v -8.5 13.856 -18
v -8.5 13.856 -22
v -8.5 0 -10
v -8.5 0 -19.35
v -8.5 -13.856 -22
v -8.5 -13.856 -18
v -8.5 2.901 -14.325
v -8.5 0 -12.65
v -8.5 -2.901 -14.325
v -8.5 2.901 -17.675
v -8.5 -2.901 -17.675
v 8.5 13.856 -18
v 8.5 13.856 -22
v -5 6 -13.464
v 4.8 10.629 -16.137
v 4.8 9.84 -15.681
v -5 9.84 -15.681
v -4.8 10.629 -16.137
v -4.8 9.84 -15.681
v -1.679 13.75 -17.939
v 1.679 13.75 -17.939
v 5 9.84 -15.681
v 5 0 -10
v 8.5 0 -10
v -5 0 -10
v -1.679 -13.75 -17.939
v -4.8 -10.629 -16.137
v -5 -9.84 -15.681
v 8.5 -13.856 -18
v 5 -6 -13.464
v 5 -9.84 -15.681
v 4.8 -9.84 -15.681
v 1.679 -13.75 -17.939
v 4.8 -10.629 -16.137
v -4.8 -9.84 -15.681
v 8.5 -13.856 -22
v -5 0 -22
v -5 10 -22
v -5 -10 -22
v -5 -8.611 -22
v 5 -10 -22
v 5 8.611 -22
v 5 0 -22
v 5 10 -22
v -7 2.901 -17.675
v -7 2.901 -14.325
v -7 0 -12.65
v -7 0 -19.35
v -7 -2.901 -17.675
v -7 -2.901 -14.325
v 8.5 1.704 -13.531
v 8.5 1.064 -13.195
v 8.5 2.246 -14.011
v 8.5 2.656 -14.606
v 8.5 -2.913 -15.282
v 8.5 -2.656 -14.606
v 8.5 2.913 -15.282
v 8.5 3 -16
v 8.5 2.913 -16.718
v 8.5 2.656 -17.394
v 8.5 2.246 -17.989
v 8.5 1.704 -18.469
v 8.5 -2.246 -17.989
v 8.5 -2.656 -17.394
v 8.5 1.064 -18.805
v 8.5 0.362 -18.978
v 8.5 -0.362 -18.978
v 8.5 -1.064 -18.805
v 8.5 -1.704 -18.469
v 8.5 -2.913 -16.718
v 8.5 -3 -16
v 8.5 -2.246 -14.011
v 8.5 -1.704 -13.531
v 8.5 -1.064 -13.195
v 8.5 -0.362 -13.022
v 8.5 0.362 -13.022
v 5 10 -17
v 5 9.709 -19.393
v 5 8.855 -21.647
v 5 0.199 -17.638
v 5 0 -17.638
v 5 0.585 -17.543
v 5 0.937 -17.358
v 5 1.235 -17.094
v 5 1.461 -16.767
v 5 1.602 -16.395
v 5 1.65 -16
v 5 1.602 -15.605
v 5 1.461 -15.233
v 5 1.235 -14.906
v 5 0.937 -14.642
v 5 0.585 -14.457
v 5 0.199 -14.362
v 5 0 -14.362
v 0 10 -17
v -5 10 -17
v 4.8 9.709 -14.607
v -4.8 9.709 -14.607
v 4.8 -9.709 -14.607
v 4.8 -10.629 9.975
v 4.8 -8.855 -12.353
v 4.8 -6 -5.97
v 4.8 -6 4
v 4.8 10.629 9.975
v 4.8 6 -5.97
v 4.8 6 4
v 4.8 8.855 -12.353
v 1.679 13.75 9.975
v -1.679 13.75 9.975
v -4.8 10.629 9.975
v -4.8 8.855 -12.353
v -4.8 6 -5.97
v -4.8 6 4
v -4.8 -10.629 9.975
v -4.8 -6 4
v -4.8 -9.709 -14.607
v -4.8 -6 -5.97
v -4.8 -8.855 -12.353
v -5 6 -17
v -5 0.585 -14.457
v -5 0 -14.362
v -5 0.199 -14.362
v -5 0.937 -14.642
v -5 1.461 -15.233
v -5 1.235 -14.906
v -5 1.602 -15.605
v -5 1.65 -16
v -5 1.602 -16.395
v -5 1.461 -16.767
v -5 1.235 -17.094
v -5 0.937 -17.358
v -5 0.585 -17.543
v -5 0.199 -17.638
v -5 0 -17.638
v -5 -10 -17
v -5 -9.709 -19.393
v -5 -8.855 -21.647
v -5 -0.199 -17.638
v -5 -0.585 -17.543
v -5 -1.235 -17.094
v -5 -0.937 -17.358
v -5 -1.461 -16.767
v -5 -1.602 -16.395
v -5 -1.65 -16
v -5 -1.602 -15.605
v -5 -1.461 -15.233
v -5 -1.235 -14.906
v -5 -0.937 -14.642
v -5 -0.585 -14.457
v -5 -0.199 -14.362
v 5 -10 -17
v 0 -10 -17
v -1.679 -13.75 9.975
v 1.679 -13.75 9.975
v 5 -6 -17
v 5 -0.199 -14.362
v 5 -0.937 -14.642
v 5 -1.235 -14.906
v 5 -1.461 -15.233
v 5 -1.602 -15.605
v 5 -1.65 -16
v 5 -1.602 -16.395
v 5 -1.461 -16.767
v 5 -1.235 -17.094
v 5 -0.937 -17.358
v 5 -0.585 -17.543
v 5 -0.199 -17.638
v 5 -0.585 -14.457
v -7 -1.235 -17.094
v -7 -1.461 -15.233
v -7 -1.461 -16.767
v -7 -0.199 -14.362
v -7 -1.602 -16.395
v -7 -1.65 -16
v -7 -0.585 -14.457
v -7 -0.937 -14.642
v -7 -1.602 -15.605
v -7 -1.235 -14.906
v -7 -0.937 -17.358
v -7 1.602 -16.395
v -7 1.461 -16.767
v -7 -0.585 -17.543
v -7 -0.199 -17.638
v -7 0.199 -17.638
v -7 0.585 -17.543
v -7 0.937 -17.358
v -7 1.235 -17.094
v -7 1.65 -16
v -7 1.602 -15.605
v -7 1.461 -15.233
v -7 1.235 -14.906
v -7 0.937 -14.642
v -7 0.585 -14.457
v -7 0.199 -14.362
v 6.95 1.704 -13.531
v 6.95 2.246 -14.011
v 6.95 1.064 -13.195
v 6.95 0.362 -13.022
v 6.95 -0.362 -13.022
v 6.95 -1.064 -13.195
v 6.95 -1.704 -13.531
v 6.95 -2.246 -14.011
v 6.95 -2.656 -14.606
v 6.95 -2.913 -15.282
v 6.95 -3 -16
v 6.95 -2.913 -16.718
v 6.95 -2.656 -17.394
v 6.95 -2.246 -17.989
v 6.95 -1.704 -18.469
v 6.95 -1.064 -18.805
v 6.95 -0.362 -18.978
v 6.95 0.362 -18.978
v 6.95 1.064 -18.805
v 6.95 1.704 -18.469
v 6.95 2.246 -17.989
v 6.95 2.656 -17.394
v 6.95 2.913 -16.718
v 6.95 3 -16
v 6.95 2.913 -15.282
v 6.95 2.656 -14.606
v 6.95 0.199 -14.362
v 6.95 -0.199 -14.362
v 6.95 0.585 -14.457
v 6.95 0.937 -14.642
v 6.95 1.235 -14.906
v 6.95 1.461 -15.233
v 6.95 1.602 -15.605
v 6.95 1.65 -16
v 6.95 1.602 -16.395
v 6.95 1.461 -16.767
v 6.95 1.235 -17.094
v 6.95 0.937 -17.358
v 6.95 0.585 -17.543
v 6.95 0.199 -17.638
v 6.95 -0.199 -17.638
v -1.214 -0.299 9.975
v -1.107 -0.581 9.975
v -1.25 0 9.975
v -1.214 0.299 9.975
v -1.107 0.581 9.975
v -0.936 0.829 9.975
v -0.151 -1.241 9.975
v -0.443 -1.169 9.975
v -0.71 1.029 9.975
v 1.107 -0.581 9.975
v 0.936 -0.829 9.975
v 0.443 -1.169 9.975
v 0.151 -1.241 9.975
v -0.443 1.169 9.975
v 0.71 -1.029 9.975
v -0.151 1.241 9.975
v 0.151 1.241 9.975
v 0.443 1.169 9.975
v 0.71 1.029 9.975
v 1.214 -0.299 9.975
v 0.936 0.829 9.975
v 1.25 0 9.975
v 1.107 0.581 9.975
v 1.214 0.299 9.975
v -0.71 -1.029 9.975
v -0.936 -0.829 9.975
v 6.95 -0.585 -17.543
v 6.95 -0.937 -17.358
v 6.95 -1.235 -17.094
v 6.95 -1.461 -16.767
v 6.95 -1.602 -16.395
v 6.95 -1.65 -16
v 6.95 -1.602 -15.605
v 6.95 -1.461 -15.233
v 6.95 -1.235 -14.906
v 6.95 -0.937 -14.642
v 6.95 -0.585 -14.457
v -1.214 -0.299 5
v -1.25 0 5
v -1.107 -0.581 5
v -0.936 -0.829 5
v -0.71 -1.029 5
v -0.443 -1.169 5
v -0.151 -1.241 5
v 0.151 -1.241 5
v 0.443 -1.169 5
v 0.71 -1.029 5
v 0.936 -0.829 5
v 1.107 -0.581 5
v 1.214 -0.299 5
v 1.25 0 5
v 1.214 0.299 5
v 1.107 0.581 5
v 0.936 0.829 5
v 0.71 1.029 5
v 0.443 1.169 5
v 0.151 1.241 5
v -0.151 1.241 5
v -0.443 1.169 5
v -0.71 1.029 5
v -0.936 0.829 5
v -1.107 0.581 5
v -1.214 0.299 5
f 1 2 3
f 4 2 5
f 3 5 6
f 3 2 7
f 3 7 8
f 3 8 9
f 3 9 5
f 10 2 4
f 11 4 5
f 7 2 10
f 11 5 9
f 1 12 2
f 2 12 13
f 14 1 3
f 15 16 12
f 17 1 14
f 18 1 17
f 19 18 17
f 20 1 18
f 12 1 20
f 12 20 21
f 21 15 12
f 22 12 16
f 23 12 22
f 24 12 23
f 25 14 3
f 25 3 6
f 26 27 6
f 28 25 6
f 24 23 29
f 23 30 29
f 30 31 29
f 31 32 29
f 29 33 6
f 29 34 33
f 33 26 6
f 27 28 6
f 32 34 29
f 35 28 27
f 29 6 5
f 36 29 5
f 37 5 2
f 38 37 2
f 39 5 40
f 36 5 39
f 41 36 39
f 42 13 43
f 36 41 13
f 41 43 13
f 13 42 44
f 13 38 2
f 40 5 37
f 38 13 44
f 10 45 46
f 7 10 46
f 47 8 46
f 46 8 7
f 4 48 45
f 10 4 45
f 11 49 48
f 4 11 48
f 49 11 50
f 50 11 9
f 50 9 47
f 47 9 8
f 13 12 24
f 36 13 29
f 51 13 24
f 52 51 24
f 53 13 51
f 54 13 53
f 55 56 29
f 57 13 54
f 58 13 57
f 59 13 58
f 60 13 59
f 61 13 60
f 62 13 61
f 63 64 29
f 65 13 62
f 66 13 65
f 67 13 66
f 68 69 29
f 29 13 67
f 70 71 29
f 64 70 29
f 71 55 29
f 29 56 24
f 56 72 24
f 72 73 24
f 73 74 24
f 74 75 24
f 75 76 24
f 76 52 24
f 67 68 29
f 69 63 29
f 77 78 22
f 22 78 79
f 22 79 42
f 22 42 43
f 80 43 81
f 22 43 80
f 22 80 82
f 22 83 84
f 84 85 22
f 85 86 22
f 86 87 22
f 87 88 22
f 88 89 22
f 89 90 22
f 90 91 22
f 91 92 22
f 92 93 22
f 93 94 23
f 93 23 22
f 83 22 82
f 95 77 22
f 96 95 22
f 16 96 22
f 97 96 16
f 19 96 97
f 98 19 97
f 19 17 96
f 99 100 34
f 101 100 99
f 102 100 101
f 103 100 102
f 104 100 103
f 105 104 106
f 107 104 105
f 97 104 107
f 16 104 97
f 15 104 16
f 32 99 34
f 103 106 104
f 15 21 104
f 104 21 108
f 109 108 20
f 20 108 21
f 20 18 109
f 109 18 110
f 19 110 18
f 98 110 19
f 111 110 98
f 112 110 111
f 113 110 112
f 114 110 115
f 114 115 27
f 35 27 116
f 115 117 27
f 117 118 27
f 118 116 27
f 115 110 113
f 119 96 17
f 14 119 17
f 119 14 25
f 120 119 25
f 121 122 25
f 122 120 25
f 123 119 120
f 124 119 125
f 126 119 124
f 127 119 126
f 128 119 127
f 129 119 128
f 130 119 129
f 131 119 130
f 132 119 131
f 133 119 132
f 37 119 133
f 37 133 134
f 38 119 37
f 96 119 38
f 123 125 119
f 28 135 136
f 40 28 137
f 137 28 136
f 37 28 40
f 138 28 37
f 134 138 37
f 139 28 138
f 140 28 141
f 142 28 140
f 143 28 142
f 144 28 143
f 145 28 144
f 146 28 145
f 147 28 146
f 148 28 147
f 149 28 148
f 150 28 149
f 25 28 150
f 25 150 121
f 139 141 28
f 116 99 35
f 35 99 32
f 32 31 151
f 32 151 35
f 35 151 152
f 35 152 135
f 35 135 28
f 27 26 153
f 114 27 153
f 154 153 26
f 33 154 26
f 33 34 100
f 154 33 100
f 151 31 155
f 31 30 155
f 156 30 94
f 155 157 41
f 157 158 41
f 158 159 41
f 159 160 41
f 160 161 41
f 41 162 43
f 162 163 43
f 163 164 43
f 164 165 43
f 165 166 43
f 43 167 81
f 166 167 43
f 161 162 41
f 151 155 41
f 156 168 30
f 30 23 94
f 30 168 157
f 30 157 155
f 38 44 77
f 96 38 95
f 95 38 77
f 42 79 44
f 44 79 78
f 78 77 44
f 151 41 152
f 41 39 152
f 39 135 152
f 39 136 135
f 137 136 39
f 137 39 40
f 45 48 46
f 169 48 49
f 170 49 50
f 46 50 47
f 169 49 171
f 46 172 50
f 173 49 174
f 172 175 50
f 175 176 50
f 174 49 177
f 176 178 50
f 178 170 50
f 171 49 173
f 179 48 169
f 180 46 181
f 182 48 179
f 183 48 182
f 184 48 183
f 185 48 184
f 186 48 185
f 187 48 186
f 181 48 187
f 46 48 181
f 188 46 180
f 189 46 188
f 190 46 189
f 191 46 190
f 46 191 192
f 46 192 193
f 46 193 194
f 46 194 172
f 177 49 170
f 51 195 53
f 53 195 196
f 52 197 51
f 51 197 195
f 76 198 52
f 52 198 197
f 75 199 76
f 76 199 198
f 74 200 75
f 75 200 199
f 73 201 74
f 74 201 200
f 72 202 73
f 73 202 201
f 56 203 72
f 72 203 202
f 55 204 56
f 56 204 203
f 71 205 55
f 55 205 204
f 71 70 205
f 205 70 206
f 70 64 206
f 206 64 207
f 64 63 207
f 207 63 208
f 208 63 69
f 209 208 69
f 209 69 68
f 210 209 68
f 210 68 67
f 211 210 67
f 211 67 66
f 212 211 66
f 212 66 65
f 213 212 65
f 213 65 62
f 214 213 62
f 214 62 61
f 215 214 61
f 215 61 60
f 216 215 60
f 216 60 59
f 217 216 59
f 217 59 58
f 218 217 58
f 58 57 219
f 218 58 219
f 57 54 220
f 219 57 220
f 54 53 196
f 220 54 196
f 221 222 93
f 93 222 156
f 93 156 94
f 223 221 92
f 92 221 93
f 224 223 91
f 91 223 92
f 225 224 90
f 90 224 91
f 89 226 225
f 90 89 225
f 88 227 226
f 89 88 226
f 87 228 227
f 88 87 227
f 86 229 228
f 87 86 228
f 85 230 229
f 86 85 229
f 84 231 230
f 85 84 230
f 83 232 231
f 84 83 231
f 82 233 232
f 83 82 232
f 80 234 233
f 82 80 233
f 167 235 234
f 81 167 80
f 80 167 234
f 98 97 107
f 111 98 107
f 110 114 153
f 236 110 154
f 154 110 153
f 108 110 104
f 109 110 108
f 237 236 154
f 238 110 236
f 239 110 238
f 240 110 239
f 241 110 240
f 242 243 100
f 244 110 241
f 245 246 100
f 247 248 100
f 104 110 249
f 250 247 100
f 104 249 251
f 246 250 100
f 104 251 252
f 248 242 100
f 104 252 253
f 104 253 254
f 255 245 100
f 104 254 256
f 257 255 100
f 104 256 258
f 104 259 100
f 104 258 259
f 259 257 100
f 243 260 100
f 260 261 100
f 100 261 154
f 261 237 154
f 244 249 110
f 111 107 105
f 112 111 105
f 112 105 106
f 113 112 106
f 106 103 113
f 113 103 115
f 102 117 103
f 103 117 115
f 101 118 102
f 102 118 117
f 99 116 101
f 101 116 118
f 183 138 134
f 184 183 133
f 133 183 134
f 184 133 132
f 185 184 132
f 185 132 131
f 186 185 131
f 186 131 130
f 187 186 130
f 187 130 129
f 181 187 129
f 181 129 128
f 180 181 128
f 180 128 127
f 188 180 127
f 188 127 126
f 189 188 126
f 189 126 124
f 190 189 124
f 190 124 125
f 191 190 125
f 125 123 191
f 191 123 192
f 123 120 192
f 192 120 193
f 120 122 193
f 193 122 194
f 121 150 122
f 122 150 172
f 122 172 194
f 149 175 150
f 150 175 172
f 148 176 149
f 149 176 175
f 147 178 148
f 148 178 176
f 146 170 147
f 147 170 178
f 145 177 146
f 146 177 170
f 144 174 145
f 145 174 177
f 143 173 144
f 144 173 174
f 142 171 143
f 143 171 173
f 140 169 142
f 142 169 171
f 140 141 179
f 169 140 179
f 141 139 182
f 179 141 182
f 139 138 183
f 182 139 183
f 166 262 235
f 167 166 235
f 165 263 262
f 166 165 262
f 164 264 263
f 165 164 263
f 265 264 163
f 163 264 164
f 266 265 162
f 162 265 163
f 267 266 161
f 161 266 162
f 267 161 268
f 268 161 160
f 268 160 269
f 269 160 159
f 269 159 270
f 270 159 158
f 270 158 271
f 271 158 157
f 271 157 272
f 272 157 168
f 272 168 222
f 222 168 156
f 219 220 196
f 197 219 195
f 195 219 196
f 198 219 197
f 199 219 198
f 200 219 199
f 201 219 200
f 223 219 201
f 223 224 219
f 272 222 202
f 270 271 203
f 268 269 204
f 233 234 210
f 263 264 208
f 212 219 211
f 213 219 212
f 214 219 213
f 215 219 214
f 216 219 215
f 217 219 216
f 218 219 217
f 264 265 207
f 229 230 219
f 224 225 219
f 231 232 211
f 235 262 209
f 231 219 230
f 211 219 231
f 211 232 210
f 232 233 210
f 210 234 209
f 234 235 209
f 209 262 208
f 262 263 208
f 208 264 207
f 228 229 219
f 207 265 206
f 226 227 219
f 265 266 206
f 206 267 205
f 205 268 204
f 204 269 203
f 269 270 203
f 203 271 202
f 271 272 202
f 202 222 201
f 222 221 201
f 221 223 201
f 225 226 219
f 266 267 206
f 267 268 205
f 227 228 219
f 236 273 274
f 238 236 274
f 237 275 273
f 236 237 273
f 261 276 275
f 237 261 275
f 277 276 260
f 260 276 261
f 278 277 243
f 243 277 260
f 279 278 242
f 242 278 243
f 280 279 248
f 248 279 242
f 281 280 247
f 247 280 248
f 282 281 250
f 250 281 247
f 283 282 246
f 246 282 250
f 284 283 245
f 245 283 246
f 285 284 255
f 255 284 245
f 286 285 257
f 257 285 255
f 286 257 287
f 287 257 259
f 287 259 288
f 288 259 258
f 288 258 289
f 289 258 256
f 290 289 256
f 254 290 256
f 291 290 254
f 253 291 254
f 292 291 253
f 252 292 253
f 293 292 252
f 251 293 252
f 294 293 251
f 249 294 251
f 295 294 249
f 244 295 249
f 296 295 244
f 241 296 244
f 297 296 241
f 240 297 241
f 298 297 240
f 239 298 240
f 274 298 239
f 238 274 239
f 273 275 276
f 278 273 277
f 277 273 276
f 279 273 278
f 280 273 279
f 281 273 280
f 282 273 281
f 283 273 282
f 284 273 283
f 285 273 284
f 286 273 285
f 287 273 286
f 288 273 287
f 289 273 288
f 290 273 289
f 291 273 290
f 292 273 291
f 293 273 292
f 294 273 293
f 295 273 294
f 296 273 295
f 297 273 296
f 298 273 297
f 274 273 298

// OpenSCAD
// X axis end idler M3 screw
// Based on Powercode Code_Xend_Idler_B_623_M6 design (https://github.com/Mecan0/Code)
// By Julio Galaron (@jgalaron)
// Licence Creative commons atribution & share alike.

xOffset = 0.1;
yOffset = 0.05;
zOffset = 0;

rotate([270,0,0]){

	difference(){
		union(){
			difference(){
				translate(v=[0,5,0]) cube(size=[9.7-xOffset,30-yOffset,27.5-zOffset], center=true);
	
				//Nice edges
				translate(v=[0,0,22.5])  rotate([0,45,0])  cube(size=[10,46,28], center=true);
				translate(v=[0,0,22.5])  rotate([0,-45,0]) cube(size=[10,46,28], center=true);
				translate(v=[0,0,-22.5]) rotate([0,45,0])  cube(size=[10,46,28], center=true);
				translate(v=[0,0,-22.5]) rotate([0,-45,0]) cube(size=[10,46,28], center=true);
			}
			
			difference(){
				translate([0,26,0]) rotate([90,0,90]) cylinder(h=17, r=16, $fn=6, center=true);
				translate([0,37,0]) cube([18,30,32], center=true);
			}
		}
		
		//holes	
		translate([0,-10,0]) rotate([90,0,0]) cylinder(h=10, r=2.5/2, $fn=26, center=true);
		translate([0,11,0])  rotate([0,90,0]) cube([12,30,10], center=true);

		hull(){ 
			translate([0,6,0])  rotate([0,90,0])cylinder(h=10, r=11/2, $fn=26,center=true);
			translate([0,17,0]) rotate([0,90,0])cylinder(h=10, r=20/2, $fn=26,center=true);
		}

		translate([0,20,0]) rotate([0,90,0]) cube([20,6,10], center=true);
		
		//screw holes
		translate([0,16,0]){
			translate([0,0,0])  rotate([0,90,0]) cylinder(h = 20, r=3.3/2, $fn=26, center=true);
			translate([8,0,0])  rotate([0,90,0]) cylinder(h = 2.1, r=6/2, $fn=26, center=true);
			translate([-8,0,0]) rotate([90,0,0]) rotate([0,90,0]) cylinder(h = 2, r=6.7/2, $fn=6, center=true);
		}
	}
}
